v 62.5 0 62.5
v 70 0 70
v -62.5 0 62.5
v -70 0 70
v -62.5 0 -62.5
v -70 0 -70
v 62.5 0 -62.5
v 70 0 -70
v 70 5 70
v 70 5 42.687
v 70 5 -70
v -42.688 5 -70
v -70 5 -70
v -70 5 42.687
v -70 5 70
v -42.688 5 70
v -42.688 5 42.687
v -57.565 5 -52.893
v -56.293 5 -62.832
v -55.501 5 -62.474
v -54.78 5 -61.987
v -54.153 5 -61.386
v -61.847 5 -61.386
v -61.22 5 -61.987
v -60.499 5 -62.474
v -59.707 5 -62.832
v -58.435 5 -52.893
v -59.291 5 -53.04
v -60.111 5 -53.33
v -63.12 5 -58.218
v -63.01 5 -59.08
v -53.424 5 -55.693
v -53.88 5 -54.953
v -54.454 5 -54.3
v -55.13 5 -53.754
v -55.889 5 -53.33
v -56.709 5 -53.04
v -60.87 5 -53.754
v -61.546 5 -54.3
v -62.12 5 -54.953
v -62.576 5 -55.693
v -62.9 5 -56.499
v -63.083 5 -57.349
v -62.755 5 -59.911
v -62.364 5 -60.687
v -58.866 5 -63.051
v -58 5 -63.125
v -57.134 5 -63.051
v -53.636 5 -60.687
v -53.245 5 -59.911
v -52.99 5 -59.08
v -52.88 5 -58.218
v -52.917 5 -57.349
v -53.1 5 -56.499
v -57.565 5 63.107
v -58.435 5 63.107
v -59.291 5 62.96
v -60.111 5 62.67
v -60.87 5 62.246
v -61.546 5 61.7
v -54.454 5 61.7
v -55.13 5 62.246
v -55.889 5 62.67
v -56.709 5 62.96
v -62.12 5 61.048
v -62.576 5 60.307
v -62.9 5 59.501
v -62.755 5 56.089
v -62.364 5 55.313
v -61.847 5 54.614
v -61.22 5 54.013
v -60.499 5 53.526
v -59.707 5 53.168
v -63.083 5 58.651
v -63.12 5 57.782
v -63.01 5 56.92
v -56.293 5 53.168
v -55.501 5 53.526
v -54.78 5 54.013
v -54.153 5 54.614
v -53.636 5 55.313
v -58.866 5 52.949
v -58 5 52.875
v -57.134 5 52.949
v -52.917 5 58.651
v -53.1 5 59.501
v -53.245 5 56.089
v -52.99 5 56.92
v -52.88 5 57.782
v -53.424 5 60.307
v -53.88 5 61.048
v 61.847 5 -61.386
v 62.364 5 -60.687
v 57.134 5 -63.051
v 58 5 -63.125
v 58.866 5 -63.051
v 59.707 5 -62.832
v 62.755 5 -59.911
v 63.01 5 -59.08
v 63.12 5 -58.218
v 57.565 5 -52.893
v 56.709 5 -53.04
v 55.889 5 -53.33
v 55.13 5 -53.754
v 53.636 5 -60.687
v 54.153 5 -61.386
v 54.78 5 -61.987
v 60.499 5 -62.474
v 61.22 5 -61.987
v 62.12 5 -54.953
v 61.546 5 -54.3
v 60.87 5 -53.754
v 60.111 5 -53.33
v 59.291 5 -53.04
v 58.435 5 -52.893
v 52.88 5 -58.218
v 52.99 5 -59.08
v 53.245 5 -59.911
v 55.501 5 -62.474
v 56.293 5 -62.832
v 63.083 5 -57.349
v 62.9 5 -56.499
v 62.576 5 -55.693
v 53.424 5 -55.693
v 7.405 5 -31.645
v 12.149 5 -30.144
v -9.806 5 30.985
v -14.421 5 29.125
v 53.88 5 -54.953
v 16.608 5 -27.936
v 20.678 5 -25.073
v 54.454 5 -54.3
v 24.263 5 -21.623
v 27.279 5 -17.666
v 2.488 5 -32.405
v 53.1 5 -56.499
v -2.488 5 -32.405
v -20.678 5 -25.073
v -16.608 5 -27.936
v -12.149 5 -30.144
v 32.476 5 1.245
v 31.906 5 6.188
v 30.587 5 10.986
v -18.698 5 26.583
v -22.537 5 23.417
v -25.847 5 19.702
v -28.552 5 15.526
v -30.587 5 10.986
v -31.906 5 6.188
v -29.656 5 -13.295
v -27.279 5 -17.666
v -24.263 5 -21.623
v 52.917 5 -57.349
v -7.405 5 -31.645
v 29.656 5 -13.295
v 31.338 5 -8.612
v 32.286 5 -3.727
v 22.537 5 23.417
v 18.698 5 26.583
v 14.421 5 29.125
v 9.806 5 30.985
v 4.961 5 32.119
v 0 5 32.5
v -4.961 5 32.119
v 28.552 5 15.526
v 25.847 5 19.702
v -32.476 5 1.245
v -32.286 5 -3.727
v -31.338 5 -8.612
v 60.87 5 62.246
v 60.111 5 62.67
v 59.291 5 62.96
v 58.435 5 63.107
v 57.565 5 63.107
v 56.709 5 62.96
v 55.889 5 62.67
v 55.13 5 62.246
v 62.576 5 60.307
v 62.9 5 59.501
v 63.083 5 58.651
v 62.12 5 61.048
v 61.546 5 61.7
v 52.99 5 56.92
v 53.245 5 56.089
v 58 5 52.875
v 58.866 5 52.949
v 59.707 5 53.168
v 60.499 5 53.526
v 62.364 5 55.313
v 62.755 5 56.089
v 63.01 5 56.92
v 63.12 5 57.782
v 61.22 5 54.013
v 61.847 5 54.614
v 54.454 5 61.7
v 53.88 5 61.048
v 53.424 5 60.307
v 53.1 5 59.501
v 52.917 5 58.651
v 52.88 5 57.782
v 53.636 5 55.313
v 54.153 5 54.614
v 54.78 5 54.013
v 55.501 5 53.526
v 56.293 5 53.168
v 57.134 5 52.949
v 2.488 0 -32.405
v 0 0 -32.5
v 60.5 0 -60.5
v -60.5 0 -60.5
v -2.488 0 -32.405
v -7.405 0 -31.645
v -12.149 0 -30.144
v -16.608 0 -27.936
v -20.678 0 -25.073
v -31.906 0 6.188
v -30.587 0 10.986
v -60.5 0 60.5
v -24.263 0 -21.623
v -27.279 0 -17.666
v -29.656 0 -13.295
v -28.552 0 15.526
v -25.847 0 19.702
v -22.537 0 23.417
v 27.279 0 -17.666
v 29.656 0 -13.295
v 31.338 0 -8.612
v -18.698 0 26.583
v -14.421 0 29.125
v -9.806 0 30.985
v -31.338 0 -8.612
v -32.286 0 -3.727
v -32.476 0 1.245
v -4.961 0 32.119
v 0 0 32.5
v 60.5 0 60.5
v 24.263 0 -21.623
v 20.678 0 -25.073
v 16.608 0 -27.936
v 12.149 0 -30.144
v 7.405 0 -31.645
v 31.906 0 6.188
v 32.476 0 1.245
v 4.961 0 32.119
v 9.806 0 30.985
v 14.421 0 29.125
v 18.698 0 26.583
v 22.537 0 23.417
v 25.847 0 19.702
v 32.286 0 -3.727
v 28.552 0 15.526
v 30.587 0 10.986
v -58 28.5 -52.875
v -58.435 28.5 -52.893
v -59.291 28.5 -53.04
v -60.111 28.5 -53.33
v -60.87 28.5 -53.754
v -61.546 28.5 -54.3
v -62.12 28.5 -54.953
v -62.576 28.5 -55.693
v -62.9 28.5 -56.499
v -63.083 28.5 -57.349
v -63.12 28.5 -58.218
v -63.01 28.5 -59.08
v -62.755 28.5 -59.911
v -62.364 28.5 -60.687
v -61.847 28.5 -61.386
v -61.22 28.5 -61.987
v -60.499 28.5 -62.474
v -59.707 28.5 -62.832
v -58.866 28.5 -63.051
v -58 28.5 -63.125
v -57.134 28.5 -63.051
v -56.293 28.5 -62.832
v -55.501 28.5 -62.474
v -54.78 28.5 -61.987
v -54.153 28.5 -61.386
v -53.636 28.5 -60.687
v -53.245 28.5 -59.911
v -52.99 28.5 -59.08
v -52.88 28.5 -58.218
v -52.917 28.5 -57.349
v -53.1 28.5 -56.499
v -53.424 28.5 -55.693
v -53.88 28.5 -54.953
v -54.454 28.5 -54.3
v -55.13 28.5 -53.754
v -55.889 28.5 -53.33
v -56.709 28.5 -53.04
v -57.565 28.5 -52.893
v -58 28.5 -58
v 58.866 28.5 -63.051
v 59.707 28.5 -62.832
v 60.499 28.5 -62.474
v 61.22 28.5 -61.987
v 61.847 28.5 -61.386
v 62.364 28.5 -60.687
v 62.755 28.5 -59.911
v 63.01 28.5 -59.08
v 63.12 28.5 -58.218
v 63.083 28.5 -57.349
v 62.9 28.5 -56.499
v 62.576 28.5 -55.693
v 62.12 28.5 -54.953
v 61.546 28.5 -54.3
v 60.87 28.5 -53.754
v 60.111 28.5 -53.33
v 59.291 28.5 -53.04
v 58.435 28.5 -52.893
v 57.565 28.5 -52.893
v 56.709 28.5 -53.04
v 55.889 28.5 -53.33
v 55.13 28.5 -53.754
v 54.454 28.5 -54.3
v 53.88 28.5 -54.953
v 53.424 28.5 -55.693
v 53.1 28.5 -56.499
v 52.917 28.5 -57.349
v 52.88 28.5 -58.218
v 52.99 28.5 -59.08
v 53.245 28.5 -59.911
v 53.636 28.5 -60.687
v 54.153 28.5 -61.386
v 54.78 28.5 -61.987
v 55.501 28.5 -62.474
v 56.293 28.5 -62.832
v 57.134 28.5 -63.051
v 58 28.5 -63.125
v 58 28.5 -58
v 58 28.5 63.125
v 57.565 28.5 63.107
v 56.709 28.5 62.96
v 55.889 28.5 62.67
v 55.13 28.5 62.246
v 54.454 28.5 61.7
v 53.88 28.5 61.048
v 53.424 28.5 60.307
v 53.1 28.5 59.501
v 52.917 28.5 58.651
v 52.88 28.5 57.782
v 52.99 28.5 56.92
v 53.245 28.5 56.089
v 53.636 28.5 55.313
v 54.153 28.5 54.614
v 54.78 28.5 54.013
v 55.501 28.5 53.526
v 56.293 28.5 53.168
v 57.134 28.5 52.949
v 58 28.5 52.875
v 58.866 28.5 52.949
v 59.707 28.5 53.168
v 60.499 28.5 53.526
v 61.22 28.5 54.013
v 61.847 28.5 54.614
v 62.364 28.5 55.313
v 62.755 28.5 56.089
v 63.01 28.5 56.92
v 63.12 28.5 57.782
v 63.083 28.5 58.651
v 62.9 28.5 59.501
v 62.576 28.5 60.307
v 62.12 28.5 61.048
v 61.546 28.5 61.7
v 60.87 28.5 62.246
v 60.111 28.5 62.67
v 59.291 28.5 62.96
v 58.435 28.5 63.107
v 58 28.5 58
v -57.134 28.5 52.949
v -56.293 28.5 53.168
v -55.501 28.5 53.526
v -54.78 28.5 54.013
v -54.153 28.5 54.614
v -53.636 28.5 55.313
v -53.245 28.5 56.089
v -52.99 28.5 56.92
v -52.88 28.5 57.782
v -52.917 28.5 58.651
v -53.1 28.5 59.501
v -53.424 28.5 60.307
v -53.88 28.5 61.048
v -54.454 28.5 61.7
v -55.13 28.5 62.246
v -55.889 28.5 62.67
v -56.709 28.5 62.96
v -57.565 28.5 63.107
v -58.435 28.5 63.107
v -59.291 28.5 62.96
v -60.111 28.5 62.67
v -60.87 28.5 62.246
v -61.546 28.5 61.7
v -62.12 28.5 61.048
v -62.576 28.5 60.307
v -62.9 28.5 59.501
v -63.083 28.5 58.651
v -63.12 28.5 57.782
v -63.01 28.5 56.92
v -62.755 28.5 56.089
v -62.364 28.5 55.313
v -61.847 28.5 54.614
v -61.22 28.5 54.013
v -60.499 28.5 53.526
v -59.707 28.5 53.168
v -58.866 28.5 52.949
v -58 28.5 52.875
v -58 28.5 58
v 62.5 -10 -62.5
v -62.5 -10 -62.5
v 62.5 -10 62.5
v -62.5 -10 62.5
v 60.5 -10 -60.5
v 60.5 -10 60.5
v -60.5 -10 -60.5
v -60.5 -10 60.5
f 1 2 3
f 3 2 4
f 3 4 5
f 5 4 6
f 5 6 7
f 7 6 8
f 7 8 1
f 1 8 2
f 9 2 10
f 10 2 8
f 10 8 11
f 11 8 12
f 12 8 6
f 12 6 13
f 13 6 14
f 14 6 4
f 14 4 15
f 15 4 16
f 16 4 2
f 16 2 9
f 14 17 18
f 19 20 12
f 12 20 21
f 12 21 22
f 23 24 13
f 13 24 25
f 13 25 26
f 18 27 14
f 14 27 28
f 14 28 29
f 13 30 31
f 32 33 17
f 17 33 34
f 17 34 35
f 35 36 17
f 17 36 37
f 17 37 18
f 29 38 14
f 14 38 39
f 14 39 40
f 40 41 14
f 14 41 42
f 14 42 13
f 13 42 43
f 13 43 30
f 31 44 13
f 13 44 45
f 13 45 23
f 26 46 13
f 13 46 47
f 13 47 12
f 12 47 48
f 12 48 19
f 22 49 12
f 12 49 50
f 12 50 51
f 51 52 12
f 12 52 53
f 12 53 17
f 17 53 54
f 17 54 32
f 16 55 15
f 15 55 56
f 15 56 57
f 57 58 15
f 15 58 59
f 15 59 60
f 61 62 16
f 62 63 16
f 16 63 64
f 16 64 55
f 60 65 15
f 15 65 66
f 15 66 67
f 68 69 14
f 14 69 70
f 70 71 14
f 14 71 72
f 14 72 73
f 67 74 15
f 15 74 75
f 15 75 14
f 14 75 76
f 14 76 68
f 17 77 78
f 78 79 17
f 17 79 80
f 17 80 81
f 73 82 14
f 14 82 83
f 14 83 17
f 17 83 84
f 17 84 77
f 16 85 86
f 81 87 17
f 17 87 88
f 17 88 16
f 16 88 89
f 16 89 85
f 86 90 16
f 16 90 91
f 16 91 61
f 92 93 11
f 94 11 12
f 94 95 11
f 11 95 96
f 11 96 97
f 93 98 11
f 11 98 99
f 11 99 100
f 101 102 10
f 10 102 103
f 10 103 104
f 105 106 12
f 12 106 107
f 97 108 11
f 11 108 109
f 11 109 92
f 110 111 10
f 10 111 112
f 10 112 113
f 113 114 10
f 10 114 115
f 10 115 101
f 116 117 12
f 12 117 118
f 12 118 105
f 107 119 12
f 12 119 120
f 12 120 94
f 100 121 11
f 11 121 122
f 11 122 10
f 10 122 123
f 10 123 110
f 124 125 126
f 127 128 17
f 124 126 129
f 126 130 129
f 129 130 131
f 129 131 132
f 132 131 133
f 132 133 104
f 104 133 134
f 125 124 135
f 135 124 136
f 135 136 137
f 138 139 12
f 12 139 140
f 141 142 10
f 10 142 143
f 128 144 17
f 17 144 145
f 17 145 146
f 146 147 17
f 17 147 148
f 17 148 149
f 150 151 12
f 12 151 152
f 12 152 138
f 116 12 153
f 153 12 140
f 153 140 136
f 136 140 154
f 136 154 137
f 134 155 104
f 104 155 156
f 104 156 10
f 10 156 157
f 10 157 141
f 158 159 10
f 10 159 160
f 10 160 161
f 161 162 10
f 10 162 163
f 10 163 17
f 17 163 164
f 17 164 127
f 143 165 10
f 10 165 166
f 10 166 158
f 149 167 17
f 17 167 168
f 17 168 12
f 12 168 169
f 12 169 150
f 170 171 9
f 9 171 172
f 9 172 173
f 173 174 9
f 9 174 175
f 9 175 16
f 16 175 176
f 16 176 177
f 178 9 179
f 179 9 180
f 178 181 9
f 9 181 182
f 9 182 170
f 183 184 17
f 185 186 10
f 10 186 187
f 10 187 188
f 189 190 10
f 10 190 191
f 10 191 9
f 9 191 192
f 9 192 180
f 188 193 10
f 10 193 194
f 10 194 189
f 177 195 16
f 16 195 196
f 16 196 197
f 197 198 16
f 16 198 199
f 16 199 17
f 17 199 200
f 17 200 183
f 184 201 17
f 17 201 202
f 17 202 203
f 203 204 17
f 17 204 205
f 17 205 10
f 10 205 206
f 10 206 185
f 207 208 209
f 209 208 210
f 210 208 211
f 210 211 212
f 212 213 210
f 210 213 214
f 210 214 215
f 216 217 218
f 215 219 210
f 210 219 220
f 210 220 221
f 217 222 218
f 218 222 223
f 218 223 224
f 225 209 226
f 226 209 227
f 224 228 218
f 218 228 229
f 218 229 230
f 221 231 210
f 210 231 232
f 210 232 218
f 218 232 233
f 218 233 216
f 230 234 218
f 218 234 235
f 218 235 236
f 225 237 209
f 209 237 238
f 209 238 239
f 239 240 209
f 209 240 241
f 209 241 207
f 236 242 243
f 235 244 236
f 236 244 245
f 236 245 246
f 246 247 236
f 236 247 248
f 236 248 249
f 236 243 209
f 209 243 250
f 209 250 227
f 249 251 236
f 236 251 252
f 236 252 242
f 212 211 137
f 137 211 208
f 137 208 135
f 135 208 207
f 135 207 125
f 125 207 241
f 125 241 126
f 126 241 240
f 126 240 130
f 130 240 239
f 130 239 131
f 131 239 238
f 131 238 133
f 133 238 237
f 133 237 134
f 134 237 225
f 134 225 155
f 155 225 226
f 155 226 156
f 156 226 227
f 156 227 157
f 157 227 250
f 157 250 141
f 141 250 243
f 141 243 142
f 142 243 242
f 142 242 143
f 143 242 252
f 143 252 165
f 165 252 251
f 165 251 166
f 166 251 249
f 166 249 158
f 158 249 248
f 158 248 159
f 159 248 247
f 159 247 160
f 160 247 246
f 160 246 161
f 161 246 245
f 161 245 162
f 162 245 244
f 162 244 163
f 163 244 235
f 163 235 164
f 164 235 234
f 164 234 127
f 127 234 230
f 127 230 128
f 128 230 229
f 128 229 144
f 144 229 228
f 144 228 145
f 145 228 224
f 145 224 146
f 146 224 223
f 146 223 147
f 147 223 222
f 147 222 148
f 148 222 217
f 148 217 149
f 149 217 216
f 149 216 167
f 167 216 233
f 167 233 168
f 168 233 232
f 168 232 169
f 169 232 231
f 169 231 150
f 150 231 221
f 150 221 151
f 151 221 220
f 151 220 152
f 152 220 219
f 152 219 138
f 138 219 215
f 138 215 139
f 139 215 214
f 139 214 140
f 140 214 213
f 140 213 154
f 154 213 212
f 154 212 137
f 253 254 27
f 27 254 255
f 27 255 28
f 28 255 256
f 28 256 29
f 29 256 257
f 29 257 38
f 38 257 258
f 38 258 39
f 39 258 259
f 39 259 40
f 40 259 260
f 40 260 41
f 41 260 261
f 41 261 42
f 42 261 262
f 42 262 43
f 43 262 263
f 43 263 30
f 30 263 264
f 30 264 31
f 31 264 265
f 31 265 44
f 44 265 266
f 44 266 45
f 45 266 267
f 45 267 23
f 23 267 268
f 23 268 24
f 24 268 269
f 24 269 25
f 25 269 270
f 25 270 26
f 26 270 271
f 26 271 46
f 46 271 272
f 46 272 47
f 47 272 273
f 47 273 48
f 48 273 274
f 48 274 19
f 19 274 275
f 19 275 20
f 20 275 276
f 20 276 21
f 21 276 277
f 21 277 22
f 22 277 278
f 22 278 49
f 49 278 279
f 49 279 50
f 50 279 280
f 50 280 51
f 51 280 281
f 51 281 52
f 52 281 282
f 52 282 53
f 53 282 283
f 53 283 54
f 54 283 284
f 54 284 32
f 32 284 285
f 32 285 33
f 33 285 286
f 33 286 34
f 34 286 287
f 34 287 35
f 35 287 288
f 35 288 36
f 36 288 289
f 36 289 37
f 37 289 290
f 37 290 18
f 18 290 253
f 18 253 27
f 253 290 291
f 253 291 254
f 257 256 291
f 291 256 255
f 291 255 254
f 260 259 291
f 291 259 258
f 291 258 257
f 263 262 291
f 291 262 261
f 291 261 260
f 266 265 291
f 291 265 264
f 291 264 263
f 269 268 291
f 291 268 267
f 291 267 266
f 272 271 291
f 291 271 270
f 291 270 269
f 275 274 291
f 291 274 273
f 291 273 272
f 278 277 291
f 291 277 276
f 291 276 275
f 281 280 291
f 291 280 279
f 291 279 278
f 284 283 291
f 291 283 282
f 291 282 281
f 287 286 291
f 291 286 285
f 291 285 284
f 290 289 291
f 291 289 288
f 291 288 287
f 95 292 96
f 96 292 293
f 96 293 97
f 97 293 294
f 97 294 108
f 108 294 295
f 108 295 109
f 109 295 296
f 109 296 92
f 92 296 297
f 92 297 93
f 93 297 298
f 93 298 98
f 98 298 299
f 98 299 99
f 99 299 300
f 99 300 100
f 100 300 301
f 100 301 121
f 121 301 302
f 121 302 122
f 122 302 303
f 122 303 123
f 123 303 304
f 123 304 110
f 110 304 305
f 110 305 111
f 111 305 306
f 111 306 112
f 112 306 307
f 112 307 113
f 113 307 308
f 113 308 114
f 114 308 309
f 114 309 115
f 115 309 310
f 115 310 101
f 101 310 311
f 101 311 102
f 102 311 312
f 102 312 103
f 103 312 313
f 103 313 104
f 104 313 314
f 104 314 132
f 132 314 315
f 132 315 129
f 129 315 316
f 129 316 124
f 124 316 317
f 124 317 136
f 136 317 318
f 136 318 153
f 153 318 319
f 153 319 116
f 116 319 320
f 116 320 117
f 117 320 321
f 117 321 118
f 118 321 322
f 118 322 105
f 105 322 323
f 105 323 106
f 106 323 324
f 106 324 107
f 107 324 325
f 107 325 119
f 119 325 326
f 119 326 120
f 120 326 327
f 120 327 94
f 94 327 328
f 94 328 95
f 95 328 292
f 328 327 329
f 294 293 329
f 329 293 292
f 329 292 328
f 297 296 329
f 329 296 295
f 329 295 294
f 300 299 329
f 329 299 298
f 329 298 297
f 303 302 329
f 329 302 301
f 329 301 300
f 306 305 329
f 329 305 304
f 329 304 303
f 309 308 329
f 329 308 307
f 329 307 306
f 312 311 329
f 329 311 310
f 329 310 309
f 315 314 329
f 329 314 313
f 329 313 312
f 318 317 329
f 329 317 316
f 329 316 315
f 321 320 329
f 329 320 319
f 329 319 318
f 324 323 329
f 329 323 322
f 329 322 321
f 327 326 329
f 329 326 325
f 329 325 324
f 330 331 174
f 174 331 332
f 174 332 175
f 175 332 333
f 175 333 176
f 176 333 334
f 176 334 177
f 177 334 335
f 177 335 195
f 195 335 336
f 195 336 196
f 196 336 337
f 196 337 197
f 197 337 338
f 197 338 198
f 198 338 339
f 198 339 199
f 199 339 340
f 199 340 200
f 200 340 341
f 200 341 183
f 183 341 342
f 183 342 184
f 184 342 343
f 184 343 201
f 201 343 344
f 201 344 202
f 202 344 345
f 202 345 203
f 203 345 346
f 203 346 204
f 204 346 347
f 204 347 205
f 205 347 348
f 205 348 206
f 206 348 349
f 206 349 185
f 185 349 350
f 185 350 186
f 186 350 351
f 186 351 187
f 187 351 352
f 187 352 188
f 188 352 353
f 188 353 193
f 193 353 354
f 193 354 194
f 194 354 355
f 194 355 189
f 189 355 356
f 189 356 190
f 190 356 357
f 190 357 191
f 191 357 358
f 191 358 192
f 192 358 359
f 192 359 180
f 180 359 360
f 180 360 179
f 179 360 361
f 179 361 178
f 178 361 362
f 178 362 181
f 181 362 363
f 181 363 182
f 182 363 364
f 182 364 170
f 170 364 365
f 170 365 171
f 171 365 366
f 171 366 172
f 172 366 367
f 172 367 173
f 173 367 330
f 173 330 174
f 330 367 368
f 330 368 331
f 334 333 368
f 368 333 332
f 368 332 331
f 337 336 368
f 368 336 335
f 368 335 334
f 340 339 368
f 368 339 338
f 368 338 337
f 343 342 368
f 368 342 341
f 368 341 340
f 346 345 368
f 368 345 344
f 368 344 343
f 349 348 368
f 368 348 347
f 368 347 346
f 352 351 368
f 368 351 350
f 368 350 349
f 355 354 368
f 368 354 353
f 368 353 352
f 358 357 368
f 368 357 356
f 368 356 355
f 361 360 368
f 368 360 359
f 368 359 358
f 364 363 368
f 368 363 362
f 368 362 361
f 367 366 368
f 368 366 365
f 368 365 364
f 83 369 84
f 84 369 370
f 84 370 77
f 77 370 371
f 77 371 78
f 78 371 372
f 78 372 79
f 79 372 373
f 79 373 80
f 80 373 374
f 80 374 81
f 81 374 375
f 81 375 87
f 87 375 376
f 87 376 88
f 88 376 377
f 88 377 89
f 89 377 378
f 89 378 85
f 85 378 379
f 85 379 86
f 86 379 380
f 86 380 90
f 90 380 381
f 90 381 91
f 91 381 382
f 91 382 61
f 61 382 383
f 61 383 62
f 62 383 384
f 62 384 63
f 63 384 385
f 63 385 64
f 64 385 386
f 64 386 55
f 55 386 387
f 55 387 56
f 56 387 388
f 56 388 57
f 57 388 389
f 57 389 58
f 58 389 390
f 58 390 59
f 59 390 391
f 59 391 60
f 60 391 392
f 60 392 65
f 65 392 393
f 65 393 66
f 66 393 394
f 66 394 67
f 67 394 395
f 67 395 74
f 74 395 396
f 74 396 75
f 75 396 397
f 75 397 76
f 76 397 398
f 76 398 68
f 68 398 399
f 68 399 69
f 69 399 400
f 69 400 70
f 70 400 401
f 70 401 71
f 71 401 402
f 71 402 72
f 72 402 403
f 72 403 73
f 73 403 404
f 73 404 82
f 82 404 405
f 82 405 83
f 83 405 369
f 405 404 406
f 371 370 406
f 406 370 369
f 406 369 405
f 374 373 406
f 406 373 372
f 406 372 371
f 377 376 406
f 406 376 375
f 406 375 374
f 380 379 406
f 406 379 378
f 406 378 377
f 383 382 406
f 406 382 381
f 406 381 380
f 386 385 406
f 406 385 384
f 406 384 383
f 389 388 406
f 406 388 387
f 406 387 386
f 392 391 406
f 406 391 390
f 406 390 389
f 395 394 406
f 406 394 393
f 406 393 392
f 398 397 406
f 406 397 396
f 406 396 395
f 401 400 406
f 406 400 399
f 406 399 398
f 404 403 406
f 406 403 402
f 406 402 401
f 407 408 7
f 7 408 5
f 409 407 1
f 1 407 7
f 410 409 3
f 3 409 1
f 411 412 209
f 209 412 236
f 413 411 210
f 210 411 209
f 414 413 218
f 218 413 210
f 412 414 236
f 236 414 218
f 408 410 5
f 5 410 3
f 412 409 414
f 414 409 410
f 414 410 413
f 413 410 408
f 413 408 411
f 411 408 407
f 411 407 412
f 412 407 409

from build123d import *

# Parameters (mm, degrees)
SKETCH1_W           = 140
SKETCH1_H           = 140
BOSS_EXTRUDE1_DEPTH = 5
CUT_EXTRUDE1_REACH  = 101.121
SKETCH3_R           = 32.5
SKETCH4_R           = 5.125
BOSS_EXTRUDE2_DEPTH = 23.5
SKETCH5_W           = 125
SKETCH5_H           = 125
SKETCH5_W_2         = 121
SKETCH5_H_2         = 121
BOSS_EXTRUDE3_DEPTH = 10


with BuildPart() as part:
    # Sketch1 → Boss-Extrude1 (new body)
    with BuildSketch(Plane(origin=(0, 0, 0), x_dir=(1, 0, 0), z_dir=(0, 1, 0))):
        Rectangle(SKETCH1_W, SKETCH1_H)
    extrude(amount=BOSS_EXTRUDE1_DEPTH)

    # Sketch3 → Cut-Extrude1 (cut, up to next)
    with BuildSketch(Plane(origin=(0, 5, 0), x_dir=(1, 0, 0), z_dir=(0, 1, 0)), mode=Mode.PRIVATE) as cut_extrude1_sk1:
        Circle(SKETCH3_R)
    cut_extrude1_tool1 = extrude(cut_extrude1_sk1.sketch, amount=-CUT_EXTRUDE1_REACH, mode=Mode.PRIVATE) & part.part
    add(cut_extrude1_tool1.solids().sort_by_distance((0, 5, 0))[0], mode=Mode.SUBTRACT)

    # Sketch4 → Boss-Extrude2 (add)
    with BuildSketch(Plane(origin=(0, 5, 0), x_dir=(1, 0, 0), z_dir=(0, 1, 0))):
        with Locations((-58, 58)):
            Circle(SKETCH4_R)
        with Locations((58, 58)):
            Circle(SKETCH4_R)
        with Locations((58, -58)):
            Circle(SKETCH4_R)
        with Locations((-58, -58)):
            Circle(SKETCH4_R)
    extrude(amount=BOSS_EXTRUDE2_DEPTH)

    # Sketch5 → Boss-Extrude3 (add)
    with BuildSketch(Plane.XZ):
        Rectangle(SKETCH5_W, SKETCH5_H)
        Rectangle(SKETCH5_W_2, SKETCH5_H_2, mode=Mode.SUBTRACT)
    extrude(amount=BOSS_EXTRUDE3_DEPTH)


solid = part.part
